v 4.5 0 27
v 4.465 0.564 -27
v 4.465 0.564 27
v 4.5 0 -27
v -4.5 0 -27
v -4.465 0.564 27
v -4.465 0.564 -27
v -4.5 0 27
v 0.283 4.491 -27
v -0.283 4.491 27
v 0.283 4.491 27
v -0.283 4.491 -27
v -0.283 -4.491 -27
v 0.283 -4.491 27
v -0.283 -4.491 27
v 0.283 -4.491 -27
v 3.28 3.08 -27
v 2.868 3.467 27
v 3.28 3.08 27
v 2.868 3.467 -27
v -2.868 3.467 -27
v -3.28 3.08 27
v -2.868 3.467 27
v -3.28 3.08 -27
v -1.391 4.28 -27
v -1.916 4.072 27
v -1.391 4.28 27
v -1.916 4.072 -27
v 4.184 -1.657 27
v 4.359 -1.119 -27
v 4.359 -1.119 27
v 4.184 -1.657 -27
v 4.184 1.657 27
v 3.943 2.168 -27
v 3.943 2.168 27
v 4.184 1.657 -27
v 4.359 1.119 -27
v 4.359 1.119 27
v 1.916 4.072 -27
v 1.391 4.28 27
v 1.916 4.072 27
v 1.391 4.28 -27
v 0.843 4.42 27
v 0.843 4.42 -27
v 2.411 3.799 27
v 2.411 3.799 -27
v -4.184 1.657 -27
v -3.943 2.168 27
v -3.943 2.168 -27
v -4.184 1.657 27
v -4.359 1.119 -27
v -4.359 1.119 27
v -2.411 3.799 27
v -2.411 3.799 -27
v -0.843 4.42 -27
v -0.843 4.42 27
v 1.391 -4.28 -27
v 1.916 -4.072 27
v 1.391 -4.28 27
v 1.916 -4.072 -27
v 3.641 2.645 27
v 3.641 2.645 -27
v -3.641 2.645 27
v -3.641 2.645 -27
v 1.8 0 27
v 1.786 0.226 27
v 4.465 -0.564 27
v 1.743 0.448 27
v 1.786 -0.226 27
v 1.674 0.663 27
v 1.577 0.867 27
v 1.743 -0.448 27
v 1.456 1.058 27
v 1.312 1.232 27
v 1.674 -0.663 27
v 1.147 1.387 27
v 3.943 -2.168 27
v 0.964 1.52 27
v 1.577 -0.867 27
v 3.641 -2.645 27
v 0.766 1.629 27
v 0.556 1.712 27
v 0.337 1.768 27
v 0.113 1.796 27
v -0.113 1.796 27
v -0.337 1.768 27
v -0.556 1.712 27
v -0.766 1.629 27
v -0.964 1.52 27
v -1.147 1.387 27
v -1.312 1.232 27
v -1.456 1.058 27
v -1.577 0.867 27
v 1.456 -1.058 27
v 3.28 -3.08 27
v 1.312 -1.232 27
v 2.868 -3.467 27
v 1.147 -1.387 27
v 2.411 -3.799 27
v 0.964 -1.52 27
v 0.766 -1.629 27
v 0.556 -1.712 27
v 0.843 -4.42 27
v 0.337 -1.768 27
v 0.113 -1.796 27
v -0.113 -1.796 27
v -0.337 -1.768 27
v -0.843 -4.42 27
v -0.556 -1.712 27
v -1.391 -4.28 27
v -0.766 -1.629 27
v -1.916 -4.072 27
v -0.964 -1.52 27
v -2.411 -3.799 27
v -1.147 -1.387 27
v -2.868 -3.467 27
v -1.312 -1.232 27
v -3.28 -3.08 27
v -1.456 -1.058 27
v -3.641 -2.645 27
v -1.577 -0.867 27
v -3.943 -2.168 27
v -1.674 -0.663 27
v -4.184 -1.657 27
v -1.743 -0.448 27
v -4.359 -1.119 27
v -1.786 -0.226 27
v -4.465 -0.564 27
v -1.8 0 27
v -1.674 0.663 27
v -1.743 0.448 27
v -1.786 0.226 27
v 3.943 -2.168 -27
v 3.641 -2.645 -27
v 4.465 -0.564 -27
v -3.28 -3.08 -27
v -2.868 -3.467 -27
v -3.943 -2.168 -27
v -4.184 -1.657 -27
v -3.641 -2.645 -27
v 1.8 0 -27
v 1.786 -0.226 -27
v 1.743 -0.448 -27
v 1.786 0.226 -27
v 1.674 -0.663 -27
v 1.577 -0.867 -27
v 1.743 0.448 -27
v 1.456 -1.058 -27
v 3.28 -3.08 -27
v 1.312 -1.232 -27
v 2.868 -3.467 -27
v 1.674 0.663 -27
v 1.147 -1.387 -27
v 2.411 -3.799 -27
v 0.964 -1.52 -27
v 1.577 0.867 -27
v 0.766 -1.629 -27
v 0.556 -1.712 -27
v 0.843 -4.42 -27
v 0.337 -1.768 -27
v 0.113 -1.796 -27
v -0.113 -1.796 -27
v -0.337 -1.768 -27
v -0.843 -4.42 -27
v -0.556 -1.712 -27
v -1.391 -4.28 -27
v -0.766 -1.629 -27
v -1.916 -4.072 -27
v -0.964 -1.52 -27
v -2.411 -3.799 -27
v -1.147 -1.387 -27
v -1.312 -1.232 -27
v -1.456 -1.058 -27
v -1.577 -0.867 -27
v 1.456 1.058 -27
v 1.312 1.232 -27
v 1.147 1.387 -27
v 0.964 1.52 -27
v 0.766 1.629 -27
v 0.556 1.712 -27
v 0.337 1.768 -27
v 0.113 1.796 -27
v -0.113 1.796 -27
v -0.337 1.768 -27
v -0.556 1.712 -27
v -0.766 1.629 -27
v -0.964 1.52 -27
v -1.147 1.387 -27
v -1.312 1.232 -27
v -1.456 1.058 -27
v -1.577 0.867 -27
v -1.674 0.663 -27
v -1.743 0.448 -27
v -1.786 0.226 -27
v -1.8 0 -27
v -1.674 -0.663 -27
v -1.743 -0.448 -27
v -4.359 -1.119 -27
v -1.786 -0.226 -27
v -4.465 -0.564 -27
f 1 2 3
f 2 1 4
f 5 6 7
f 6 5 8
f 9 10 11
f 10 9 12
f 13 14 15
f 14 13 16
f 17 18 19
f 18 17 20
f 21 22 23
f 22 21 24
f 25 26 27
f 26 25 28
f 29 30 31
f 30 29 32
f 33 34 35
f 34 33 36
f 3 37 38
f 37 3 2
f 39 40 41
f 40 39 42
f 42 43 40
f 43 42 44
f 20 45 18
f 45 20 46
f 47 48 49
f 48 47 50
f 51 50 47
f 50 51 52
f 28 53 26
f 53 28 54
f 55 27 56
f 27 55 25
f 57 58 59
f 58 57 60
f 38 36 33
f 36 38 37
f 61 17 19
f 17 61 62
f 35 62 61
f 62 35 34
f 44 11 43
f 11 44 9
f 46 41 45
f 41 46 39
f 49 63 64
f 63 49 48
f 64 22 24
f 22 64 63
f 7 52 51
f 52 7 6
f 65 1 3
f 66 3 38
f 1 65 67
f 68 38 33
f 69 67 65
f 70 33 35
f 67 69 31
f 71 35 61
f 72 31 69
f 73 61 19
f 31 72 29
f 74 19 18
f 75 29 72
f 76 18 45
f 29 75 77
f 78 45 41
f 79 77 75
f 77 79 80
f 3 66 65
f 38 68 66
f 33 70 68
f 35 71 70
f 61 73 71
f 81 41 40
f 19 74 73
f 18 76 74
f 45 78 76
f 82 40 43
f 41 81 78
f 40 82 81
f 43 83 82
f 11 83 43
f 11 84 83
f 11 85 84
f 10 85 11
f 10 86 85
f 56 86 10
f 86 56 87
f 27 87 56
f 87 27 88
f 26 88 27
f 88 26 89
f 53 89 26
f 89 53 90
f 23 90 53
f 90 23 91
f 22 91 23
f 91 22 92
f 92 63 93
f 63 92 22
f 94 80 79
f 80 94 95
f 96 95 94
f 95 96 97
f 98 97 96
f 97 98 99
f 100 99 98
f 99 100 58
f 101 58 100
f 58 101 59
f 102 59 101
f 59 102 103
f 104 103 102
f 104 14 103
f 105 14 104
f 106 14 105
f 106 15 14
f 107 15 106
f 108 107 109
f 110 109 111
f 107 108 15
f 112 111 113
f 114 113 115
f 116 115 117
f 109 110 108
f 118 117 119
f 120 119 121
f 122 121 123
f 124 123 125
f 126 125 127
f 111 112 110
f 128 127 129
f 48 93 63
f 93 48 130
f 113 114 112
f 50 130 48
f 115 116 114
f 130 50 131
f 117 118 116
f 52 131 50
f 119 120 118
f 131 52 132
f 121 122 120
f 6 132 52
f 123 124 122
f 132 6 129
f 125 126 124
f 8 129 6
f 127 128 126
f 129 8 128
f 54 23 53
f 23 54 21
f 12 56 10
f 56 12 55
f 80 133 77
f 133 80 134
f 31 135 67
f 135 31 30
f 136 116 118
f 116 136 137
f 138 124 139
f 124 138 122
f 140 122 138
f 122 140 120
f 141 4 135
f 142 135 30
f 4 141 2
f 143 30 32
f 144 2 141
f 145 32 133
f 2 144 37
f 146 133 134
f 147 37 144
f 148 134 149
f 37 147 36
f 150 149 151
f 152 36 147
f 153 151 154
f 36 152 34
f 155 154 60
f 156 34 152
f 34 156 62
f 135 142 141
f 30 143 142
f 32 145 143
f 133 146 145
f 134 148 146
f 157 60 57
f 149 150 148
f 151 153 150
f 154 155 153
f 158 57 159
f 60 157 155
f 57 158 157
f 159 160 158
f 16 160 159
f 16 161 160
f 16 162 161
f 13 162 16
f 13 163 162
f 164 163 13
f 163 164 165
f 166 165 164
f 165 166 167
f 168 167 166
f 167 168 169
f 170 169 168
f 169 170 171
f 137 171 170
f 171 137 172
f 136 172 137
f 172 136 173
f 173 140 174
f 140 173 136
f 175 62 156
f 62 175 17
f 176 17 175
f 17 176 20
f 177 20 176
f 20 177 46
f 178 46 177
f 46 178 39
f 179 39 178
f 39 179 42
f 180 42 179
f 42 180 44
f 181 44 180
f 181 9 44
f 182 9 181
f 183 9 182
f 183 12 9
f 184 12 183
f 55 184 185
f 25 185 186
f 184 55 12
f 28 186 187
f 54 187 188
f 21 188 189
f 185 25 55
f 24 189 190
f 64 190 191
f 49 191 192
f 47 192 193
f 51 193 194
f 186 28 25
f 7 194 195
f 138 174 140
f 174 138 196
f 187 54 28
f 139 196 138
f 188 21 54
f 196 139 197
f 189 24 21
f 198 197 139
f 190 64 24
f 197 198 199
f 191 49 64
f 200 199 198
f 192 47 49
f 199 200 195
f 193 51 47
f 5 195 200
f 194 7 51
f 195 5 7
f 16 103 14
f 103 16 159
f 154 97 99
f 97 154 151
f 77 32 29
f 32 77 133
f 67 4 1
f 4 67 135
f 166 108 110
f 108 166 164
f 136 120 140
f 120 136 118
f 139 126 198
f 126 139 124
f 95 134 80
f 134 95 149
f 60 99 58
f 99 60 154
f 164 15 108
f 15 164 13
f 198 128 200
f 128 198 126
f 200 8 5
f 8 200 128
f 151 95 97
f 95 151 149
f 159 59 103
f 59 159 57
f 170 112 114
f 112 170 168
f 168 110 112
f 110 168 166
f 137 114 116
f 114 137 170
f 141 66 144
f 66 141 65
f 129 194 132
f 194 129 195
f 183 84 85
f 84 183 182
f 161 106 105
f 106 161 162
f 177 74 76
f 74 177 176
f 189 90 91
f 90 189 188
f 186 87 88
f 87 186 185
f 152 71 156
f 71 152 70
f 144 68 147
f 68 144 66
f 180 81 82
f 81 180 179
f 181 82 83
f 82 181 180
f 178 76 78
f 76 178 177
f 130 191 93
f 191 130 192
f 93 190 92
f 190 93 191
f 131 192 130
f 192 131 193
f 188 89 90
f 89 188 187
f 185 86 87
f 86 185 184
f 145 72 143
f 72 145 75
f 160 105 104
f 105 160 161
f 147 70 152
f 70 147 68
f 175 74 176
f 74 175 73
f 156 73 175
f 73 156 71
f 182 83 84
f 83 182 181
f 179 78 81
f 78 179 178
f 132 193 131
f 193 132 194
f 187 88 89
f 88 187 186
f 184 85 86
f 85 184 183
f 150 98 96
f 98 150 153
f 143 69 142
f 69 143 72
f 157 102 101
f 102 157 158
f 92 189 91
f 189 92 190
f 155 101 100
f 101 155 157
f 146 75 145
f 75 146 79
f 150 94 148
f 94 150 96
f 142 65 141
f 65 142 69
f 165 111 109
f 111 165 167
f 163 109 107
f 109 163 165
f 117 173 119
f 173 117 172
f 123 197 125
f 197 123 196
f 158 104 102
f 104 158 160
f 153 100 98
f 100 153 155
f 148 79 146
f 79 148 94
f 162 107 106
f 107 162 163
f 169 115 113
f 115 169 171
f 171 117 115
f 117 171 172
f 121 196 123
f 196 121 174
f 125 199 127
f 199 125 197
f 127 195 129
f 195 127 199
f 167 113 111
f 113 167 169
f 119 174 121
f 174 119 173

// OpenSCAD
$fn = 50;


difference() {
	union() {
		translate(v = [0, 0, -27.0000000000]) {
			cylinder(h = 54, r = 4.5000000000);
		}
	}
	union() {
		translate(v = [0, 0, -100.0000000000]) {
			cylinder(h = 200, r = 1.8000000000);
		}
	}
}
